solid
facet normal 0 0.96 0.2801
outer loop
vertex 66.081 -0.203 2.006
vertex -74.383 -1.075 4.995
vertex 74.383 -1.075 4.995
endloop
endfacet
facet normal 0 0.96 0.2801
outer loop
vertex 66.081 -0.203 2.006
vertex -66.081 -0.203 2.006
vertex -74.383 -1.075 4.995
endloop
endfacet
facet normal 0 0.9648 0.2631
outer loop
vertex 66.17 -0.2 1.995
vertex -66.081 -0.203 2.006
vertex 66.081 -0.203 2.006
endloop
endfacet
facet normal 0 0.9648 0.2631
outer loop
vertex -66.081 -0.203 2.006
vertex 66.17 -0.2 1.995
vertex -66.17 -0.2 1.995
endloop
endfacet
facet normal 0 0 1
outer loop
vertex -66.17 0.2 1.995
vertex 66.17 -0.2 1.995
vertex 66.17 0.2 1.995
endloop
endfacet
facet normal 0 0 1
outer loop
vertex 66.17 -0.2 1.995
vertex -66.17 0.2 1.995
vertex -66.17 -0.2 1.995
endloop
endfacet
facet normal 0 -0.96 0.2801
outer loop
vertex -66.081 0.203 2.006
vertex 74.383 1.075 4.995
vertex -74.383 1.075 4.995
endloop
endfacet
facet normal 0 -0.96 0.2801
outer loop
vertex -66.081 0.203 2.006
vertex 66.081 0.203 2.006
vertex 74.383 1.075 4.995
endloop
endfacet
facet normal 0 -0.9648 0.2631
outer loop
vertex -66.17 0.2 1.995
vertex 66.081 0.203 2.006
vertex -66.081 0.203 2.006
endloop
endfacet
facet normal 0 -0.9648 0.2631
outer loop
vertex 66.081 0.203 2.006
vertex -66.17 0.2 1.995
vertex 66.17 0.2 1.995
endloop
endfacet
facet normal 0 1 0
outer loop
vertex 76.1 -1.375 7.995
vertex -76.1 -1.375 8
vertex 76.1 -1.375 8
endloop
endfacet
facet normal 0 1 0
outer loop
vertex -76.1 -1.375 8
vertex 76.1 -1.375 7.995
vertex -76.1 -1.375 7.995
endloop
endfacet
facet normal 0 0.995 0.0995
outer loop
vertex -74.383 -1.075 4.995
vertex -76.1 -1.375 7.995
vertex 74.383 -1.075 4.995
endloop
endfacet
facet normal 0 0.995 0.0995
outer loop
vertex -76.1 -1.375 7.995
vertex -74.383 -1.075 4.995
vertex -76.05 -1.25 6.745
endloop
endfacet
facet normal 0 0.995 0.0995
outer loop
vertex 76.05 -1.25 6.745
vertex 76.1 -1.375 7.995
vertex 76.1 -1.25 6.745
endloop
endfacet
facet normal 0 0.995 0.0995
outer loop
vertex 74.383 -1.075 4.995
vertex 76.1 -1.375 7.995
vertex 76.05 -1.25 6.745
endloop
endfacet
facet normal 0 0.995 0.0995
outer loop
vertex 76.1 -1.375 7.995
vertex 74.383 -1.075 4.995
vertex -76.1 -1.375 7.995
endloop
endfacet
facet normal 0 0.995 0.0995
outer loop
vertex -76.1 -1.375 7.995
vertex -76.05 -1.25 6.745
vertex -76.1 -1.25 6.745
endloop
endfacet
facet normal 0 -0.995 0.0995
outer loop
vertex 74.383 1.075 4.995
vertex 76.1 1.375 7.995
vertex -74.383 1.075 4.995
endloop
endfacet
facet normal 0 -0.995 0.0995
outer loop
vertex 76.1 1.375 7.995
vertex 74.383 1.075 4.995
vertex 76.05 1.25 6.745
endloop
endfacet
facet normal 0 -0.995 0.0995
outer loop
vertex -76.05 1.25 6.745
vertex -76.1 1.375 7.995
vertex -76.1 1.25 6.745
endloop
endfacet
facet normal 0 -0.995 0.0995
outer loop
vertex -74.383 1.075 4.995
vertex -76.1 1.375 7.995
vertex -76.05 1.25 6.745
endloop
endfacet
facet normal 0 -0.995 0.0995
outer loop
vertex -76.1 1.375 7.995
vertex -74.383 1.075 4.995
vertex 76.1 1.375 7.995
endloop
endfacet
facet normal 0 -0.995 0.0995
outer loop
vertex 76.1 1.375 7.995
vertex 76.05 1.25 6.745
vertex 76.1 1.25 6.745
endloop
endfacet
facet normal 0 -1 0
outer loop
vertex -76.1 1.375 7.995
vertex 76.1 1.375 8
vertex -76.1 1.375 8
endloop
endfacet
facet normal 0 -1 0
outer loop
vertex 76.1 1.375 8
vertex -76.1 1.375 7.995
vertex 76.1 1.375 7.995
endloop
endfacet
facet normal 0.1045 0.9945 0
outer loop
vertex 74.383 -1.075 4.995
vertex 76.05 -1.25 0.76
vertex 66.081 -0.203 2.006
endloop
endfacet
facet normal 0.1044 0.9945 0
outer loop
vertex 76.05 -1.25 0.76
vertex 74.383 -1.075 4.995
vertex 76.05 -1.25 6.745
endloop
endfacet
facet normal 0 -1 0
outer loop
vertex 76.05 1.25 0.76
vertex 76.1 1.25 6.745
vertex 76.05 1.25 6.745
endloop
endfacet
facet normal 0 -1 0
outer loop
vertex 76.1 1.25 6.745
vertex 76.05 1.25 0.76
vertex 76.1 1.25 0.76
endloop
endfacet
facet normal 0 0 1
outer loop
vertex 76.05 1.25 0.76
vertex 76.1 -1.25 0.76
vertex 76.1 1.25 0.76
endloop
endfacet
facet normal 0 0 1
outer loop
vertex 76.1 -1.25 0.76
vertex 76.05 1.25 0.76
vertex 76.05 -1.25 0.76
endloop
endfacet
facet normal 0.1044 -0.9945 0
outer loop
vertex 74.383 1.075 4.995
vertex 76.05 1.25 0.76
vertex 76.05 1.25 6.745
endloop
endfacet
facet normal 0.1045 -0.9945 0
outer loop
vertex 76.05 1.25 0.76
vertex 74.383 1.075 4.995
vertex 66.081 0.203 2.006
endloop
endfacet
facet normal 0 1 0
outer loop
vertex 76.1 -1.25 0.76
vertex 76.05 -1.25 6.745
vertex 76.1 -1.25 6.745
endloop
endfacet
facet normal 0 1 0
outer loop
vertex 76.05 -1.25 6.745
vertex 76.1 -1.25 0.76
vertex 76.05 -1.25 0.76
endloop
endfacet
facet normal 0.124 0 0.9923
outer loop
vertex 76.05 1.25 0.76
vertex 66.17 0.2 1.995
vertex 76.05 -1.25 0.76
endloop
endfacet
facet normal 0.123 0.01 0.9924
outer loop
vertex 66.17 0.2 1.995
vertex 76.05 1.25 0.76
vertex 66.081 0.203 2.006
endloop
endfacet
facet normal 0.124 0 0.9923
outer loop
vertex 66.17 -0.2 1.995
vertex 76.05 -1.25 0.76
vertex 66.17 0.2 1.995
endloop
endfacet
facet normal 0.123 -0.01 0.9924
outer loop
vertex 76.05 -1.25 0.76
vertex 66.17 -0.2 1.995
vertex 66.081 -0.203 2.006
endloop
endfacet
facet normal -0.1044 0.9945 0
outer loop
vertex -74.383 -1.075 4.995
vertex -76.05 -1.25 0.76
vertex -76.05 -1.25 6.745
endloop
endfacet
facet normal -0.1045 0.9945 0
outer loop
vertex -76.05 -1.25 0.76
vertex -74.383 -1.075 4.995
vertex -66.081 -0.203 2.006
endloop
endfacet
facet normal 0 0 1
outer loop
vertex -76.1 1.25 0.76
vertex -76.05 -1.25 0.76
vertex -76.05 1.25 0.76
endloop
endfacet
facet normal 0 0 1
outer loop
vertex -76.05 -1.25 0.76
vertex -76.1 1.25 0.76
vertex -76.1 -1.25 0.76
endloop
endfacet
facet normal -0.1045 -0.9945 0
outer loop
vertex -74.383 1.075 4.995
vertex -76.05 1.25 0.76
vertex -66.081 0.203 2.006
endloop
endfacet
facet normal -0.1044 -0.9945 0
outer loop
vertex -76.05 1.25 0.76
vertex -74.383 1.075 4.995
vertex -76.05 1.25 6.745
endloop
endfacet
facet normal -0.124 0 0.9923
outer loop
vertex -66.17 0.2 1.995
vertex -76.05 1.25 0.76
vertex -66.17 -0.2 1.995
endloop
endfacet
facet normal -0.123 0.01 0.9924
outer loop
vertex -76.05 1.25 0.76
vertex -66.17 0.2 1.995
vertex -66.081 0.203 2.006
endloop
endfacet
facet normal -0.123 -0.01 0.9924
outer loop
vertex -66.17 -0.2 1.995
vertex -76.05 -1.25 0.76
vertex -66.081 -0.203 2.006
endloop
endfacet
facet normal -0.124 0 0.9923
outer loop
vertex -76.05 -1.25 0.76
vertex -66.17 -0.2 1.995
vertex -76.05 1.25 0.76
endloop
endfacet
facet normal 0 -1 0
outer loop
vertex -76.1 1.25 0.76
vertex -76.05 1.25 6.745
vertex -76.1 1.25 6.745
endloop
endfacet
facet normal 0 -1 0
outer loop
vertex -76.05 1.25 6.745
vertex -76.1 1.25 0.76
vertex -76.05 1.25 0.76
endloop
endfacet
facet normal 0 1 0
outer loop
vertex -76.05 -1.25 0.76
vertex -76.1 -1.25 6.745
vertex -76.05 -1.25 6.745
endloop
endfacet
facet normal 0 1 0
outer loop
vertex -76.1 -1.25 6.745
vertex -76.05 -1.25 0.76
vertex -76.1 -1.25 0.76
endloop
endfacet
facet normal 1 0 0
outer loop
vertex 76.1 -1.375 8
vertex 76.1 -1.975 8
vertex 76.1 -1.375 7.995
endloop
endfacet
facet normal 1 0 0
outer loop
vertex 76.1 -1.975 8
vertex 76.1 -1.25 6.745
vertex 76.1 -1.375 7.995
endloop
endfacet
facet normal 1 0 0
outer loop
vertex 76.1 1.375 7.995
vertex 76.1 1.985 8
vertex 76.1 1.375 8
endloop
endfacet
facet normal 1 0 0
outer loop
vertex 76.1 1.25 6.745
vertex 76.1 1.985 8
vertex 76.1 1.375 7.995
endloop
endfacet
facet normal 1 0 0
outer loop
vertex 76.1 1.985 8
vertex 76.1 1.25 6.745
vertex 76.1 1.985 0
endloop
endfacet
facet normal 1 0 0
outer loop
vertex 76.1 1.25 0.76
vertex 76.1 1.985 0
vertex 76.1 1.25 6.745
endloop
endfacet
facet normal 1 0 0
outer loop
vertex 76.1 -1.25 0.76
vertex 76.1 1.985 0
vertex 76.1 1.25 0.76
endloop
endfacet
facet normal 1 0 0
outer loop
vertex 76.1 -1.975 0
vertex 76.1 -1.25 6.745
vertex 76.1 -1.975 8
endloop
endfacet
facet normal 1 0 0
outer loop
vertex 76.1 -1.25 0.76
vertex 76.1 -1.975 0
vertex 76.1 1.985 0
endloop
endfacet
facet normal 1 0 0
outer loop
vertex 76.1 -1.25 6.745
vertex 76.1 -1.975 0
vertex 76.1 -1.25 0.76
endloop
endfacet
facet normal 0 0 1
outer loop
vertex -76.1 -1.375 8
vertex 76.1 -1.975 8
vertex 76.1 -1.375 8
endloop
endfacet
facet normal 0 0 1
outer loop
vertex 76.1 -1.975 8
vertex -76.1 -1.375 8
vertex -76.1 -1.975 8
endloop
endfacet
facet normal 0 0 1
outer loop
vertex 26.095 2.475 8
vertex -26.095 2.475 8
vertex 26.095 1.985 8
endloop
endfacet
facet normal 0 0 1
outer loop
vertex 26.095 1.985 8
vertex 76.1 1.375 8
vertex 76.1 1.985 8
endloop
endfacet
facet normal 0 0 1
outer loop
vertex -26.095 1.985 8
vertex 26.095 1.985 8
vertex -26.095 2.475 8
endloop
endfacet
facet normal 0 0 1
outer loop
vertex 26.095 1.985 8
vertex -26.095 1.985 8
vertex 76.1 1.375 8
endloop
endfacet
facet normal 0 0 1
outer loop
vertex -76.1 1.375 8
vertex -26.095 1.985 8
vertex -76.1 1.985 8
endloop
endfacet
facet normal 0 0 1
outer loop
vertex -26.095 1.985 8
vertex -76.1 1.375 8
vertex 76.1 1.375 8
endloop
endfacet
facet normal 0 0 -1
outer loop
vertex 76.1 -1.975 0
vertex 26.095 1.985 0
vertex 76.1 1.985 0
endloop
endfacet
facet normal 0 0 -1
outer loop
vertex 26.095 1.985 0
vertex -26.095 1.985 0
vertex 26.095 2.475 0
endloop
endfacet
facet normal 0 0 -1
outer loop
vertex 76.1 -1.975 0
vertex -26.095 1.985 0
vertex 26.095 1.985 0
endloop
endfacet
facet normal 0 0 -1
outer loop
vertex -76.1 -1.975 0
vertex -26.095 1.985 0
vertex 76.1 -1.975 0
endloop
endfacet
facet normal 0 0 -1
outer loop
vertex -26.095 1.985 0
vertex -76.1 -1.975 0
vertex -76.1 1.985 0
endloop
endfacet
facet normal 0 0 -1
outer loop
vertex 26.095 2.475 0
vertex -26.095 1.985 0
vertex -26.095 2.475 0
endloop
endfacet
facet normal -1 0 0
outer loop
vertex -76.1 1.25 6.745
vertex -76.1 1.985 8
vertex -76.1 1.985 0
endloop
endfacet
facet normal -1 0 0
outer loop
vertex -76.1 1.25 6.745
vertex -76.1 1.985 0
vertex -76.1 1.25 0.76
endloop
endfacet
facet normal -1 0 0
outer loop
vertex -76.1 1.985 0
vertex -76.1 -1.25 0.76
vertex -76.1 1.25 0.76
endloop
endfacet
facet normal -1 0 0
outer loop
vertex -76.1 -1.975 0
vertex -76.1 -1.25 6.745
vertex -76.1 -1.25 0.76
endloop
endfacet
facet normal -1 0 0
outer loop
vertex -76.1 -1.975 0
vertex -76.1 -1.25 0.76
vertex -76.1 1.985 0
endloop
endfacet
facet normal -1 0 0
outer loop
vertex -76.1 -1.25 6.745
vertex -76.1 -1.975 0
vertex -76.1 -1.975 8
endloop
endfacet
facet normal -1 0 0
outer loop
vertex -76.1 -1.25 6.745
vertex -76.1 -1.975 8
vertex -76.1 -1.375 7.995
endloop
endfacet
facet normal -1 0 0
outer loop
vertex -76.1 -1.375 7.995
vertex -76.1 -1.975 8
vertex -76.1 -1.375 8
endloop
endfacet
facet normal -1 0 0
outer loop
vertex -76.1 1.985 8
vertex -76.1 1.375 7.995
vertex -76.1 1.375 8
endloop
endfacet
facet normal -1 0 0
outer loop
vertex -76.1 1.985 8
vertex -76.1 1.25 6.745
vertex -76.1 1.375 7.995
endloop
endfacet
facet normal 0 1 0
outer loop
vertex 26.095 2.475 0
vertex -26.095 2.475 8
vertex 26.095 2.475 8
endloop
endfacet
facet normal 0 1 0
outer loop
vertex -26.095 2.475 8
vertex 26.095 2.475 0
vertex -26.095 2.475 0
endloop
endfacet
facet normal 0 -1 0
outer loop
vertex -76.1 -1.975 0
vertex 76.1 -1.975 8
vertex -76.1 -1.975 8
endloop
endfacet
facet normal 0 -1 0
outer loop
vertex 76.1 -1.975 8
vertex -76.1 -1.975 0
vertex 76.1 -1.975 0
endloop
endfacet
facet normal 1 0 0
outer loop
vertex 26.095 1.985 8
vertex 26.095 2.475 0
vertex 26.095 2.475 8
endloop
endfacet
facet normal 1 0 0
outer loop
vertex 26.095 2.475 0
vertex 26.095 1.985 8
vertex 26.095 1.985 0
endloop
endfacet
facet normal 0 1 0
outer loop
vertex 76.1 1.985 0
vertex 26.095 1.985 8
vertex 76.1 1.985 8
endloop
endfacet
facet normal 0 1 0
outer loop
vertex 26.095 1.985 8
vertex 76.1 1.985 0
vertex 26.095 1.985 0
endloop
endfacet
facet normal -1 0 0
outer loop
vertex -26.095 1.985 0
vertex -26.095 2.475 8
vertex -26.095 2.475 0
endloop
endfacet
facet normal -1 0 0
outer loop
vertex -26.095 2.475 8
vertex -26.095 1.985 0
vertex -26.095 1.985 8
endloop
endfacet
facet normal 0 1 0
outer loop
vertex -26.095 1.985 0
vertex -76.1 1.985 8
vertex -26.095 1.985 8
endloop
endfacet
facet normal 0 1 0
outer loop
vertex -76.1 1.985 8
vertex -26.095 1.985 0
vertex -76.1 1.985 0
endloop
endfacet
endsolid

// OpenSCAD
// INDEX CARD FIFO

// Office Works Index Card measured with micrometer to be 0.255
// You may want to add some more tolerance to account for varying card thickness

/* [Card Spec] */
// 76 x 127mm (More like 126mm width when measured)
card_width = 126;
card_width_tol = 0.1;
card_height = 76;
card_height_tol = 0.1;
card_thickness = 0.25;
card_thickness_tol = 0.15;

/* [Command Strip] */

// Command Strip Width
commandstrip_w = 16/2; // 16mm width strip, but cut in half

// Command Strip Height (Not including the pull tab)
commandstrip_h = 50;

// Command Strip Thickness
commandstrip_thickness = 1.0;

/* [Wall Mount Spec] */
mount_slot_count = 2;

mount_width = commandstrip_w;

// Dev Note: We don't actually need to make the card form fittin. 
// The card will flex outward a bit... so we just need to make sure it large enough
// The flexing card will prevent cards upward from sliding downward anyway... so we are good
//mount_card_slide = card_thickness * 4 - 0.1;
mount_card_slide = 2.0;
mount_card_funnel = 2.5;
mount_card_grip_depth = 6;
mount_thickness = 0.6;

echo (mount_card_slide)

if (0)
%translate([0,0,(card_width+card_width_tol)/2+(commandstrip_w-mount_card_grip_depth)])
    cube([card_height+card_height_tol, card_thickness+card_thickness_tol, card_width+card_width_tol], center=true);

module cardSlit(card_mount_height, card_mount_thickness, mount_width)
{
    main_slide_bottom_width = card_thickness+card_thickness_tol;
    main_slide_width = mount_card_slide+card_thickness_tol;
    main_slide_flairout = card_thickness+mount_card_funnel;
    hull()
    {
        // Main Slide Channel
        translate([0,0,(mount_width-mount_card_grip_depth)])
            cube([card_mount_height+1, main_slide_bottom_width, 0.01], center=true);
        translate([0,0,(mount_width)-mount_card_grip_depth/2])
            cube([card_mount_height+1, main_slide_width, 0.01], center=true);
    }
    hull()
    {
        // Flair Out (Since the first few sub mm on plate will be very inaccurate due to plate squish)
        translate([0,0,(mount_width)-mount_card_grip_depth/2])
            cube([card_mount_height+1, main_slide_width, 0.01], center=true);
        translate([0,0,(mount_width)])
            cube([card_mount_height+1, main_slide_flairout, 0.01], center=true);
    }

    // Funnels
    translate([0,0,(mount_width - mount_card_grip_depth)+0.01])
    hull()
    {
        translate([card_mount_height/2-10,0,mount_card_grip_depth/2])
            cube([0.1, card_thickness+card_thickness_tol, mount_card_grip_depth], center=true);
        translate([card_mount_height/2,0,mount_card_grip_depth/2])
            cube([0.1, mount_card_funnel, mount_card_grip_depth+mount_card_funnel], center=true);
    }

    translate([0,0,(mount_width - mount_card_grip_depth)+0.01])
    hull()
    {
        translate([-card_mount_height/2+10,0,mount_card_grip_depth/2])
            cube([0.1, card_thickness+card_thickness_tol, mount_card_grip_depth], center=true);
        translate([-card_mount_height/2,0,mount_card_grip_depth/2])
            cube([0.1, mount_card_funnel, mount_card_grip_depth+mount_card_funnel], center=true);
    }
}

difference()
{
    card_mount_height = (card_height+card_height_tol)*mount_slot_count;
    card_mount_thickness = card_thickness+mount_card_funnel+mount_thickness*2+commandstrip_thickness/2;
    
    translate([0,commandstrip_thickness/4,mount_width/2])
        cube([card_mount_height, card_mount_thickness, mount_width], center=true);

    // Card Slit
    translate([0,0,0])
        cardSlit(card_mount_height, card_mount_thickness, mount_width);

    // Command Strip
    translate([card_mount_height/2-commandstrip_h/2,card_mount_thickness/2+commandstrip_thickness/4+0.01,mount_width/2])
        cube([commandstrip_h+0.01,commandstrip_thickness,mount_width+0.1], center=true);
    translate([-card_mount_height/2+commandstrip_h/2,card_mount_thickness/2+commandstrip_thickness/4+0.01,mount_width/2])
        cube([commandstrip_h+0.01,commandstrip_thickness,mount_width+0.1], center=true);
}
